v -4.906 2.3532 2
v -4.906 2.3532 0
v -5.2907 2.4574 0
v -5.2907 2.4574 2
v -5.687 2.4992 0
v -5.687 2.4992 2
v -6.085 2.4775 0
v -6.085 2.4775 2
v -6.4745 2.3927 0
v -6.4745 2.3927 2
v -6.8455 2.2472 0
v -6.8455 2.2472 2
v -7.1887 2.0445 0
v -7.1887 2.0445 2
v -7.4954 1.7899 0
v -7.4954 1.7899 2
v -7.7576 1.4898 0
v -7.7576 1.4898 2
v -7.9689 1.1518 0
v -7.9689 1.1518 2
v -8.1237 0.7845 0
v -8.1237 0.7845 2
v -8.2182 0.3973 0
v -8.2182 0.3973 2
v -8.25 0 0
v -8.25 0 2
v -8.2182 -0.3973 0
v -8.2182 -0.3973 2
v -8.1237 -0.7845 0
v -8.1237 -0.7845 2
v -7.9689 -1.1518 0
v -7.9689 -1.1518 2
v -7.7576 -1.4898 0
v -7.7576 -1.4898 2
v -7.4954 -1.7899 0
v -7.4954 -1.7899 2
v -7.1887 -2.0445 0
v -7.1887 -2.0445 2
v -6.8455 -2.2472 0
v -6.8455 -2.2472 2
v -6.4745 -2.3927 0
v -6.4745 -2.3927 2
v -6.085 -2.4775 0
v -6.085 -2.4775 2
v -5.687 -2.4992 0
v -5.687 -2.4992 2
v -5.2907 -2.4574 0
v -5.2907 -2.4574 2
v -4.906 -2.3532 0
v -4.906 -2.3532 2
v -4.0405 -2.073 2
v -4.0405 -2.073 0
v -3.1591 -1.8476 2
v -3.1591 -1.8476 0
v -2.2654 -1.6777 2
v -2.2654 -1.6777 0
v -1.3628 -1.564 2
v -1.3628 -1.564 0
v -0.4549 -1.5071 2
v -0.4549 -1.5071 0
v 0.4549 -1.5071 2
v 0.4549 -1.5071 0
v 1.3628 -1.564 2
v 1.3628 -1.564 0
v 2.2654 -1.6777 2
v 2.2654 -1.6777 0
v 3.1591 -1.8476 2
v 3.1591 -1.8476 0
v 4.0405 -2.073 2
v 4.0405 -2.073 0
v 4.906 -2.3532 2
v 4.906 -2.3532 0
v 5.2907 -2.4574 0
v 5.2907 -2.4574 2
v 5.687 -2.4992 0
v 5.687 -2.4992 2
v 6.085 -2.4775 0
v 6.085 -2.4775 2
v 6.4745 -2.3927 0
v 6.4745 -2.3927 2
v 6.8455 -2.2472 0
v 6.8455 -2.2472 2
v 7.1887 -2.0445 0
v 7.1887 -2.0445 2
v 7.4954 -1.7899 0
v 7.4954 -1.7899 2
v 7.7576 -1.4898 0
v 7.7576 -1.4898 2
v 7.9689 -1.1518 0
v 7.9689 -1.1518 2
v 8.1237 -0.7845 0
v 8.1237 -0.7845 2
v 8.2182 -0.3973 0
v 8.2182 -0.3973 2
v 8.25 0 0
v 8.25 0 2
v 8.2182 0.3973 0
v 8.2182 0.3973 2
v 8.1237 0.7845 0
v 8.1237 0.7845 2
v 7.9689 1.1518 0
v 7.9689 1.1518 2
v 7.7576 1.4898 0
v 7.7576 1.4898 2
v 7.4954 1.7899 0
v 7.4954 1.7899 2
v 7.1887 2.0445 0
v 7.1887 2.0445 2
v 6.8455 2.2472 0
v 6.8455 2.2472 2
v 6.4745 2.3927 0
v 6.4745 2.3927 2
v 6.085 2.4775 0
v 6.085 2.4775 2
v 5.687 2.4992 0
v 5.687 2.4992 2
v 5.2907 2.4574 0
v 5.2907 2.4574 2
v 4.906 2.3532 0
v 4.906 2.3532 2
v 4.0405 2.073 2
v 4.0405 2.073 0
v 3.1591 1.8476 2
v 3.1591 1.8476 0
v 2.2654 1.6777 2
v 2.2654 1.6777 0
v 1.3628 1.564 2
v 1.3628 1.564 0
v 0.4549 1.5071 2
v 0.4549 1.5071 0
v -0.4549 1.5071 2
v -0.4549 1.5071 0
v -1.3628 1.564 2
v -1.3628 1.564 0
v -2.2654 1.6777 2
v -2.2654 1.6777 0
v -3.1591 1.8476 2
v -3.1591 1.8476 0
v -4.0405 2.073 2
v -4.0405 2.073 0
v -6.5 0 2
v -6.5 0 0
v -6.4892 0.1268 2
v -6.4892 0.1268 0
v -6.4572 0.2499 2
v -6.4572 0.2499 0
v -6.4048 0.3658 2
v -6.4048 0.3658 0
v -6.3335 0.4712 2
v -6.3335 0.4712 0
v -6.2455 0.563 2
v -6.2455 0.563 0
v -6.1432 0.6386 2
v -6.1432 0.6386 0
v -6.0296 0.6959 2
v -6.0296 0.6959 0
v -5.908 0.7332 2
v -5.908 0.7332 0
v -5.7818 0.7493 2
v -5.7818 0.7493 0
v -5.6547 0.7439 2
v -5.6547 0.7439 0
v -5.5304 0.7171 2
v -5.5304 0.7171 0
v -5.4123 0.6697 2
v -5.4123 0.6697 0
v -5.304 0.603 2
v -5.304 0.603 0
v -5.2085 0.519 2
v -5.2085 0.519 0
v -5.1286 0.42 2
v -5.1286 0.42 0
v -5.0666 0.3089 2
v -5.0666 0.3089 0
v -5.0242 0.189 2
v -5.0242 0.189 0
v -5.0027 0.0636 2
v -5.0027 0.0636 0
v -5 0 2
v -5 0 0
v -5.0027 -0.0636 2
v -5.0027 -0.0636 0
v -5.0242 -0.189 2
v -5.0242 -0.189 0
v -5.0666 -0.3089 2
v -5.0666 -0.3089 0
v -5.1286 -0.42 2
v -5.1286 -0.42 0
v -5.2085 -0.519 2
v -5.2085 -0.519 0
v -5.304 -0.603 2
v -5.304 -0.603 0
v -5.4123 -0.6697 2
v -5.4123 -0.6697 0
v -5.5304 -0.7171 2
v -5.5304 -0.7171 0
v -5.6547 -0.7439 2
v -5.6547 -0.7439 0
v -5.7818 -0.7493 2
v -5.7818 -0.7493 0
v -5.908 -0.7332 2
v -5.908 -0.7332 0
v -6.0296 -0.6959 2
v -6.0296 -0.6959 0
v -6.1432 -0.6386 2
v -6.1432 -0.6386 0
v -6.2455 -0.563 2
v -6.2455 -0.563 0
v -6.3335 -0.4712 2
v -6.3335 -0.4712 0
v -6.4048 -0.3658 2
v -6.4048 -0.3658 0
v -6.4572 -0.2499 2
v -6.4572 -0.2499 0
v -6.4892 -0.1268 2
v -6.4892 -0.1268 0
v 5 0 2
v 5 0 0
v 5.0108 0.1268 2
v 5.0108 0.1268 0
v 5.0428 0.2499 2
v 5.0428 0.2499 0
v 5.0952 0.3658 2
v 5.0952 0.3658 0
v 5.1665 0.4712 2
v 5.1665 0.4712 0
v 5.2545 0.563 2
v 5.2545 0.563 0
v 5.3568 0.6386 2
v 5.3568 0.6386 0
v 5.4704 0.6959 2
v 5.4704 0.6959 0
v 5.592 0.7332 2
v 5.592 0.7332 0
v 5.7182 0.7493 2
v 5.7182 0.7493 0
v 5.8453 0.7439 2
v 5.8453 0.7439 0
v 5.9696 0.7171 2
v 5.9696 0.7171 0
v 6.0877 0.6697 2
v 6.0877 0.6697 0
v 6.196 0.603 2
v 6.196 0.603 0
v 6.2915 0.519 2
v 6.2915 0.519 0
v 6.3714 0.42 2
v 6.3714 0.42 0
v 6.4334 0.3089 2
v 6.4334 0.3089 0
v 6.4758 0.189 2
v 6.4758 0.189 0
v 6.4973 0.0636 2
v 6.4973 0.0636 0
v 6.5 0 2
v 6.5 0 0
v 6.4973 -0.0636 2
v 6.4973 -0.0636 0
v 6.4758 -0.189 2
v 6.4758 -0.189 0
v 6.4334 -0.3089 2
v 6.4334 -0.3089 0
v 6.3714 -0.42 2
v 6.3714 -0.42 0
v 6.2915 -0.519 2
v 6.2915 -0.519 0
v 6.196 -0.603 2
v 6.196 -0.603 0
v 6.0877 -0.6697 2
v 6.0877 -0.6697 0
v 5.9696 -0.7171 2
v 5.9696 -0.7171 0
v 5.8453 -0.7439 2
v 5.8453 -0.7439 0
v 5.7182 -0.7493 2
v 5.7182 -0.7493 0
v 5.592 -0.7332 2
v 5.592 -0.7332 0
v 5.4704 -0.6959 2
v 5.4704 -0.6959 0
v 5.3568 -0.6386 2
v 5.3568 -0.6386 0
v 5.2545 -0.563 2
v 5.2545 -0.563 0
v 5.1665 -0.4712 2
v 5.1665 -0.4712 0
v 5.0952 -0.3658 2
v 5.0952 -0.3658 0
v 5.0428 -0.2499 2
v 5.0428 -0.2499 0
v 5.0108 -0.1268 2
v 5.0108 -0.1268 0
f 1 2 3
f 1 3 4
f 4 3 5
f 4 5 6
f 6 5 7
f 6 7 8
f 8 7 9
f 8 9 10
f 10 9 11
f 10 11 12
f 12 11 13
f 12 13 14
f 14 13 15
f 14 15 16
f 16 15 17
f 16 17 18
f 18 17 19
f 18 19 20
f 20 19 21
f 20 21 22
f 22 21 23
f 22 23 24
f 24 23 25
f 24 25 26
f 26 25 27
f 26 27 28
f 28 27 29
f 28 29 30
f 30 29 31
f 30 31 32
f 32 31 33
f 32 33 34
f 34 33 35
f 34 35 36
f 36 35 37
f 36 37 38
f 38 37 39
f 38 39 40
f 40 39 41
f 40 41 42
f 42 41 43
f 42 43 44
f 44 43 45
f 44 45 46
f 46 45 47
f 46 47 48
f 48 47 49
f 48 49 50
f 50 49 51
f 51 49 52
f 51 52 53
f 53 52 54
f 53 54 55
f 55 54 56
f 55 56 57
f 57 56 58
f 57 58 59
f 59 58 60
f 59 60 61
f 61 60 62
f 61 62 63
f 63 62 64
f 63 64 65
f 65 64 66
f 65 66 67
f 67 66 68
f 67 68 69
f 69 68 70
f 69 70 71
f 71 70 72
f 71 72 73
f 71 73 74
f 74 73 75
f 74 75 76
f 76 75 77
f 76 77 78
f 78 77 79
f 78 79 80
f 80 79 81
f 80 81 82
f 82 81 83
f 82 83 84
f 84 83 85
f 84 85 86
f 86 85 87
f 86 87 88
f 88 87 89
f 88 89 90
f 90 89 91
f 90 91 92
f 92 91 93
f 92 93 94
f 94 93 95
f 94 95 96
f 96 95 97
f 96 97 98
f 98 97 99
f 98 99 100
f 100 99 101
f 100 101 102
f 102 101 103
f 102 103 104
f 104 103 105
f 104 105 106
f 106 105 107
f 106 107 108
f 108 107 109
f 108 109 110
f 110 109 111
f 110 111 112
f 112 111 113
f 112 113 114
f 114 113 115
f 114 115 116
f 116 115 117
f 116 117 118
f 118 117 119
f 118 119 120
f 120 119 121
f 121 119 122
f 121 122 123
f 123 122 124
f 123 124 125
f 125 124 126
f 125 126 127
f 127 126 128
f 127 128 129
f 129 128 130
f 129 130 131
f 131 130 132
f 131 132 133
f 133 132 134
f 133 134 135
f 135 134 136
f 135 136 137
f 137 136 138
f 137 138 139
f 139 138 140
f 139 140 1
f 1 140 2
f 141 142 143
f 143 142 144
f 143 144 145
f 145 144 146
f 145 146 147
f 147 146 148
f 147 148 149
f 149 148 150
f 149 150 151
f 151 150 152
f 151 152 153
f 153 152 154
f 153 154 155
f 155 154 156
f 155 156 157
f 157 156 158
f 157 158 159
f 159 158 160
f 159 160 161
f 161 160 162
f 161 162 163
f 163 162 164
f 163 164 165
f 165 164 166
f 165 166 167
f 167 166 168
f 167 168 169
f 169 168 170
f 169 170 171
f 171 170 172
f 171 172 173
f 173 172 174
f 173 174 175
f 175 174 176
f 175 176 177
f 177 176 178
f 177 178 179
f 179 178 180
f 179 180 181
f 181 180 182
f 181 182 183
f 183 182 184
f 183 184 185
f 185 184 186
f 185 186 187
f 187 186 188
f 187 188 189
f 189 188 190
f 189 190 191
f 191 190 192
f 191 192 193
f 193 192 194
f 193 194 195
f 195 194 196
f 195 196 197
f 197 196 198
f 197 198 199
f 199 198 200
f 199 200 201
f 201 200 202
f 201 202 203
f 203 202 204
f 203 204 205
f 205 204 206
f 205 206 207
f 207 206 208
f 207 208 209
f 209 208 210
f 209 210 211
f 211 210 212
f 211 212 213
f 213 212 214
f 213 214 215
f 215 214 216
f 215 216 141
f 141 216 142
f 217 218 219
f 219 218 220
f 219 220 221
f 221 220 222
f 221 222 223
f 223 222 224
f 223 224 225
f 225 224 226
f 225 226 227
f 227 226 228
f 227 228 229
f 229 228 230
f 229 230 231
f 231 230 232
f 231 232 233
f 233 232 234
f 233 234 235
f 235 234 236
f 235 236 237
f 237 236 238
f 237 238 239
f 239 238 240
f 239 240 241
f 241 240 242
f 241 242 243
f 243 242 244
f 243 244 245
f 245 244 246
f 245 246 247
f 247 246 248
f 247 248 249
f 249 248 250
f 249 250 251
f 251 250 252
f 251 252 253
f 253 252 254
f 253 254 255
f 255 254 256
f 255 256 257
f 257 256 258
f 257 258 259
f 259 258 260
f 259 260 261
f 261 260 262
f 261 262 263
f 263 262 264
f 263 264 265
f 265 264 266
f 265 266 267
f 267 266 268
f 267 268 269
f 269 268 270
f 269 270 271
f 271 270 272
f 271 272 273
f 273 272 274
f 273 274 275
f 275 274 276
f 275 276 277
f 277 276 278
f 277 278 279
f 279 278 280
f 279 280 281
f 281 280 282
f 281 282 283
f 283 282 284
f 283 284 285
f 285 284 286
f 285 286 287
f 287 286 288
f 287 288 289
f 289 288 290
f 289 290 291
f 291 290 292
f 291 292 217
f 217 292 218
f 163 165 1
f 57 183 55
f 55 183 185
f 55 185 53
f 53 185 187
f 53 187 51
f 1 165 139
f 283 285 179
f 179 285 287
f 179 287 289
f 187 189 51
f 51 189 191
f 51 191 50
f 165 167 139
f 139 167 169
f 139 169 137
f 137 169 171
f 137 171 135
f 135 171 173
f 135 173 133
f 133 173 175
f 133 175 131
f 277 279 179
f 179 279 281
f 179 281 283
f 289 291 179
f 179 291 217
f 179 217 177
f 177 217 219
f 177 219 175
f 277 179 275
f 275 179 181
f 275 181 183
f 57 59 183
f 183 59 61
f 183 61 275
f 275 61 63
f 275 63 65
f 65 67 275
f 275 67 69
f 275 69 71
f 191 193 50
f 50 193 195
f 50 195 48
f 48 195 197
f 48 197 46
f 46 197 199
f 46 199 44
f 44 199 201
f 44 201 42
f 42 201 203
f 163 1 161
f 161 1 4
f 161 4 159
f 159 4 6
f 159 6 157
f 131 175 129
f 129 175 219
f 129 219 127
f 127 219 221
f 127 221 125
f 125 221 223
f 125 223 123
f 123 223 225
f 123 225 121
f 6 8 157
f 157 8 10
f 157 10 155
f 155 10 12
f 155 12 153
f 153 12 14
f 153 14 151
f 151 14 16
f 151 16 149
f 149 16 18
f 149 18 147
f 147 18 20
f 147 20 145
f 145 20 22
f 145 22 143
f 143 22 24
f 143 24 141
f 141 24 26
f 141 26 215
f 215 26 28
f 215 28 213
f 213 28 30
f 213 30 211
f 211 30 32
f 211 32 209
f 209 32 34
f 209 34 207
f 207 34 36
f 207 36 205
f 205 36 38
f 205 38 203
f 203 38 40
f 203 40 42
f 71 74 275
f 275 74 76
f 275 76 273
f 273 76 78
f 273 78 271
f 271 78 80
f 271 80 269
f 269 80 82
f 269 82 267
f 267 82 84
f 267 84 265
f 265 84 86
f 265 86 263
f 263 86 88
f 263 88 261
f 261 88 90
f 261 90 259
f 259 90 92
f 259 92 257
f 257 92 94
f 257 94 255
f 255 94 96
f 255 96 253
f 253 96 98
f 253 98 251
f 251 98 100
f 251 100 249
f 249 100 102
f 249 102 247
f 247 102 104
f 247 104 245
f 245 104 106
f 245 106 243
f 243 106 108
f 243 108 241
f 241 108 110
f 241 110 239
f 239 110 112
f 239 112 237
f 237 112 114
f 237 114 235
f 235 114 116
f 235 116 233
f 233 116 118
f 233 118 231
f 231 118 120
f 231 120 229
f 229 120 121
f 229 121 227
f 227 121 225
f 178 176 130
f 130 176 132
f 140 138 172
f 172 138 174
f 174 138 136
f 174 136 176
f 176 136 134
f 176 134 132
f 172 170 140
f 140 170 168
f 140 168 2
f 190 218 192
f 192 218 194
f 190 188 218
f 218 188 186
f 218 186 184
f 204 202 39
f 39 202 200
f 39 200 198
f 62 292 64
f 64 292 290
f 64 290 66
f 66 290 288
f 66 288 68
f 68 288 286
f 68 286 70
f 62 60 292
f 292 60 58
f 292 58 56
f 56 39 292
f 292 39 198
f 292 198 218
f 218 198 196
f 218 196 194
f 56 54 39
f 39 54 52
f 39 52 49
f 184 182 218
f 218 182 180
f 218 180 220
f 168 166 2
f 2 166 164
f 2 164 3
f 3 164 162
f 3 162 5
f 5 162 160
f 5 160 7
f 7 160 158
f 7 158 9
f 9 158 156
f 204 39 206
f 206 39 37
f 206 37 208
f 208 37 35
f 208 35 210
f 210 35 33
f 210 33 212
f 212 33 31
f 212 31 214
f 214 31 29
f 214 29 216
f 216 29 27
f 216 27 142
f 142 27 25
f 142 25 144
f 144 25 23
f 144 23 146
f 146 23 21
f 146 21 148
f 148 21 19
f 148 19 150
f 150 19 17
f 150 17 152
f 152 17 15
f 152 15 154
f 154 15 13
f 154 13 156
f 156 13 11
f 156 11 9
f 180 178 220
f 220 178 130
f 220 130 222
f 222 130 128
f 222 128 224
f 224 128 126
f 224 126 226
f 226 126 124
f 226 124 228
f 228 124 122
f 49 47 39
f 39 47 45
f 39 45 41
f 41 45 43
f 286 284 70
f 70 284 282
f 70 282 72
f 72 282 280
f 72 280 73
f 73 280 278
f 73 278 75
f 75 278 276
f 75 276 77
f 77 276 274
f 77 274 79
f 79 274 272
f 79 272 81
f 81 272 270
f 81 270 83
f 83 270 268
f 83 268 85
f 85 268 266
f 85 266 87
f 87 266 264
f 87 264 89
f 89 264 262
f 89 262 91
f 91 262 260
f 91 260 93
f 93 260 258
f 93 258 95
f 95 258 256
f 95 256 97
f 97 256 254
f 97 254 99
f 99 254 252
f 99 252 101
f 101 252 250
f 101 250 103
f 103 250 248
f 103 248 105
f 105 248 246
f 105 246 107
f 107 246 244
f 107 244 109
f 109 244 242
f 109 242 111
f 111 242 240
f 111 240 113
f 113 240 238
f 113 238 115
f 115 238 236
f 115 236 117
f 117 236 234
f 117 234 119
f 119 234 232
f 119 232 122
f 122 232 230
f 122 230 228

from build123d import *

# Parameters (mm, degrees)
SKETCH1_R           = 2.5
SKETCH1_R_2         = 0.75
BOSS_EXTRUDE1_DEPTH = 2


with BuildPart() as part:
    # Sketch1 → Boss-Extrude1 (new body)
    with BuildSketch(Plane.XY):
        with Locations((-5.75, 0)):
            Circle(SKETCH1_R)
        with Locations((-5.75, 0)):
            Circle(SKETCH1_R_2, mode=Mode.SUBTRACT)
        with BuildLine():
            ThreePointArc((-4.905963303, 2.353211009), (-3.705483952, 1.438733515), (-3.25, 0))
            ThreePointArc((-3.25, 0), (-3.705483952, -1.438733515), (-4.905963303, -2.353211009))
            ThreePointArc((-4.905963303, -2.353211009), (0, -1.5), (4.905963303, -2.353211009))
            ThreePointArc((4.905963303, -2.353211009), (3.25, 0), (4.905963303, 2.353211009))
            ThreePointArc((4.905963303, 2.353211009), (0, 1.5), (-4.905963303, 2.353211009))
        make_face()
        with Locations((5.75, 0)):
            Circle(SKETCH1_R)
        with Locations((5.75, 0)):
            Circle(SKETCH1_R_2, mode=Mode.SUBTRACT)
    extrude(amount=BOSS_EXTRUDE1_DEPTH)


solid = part.part
